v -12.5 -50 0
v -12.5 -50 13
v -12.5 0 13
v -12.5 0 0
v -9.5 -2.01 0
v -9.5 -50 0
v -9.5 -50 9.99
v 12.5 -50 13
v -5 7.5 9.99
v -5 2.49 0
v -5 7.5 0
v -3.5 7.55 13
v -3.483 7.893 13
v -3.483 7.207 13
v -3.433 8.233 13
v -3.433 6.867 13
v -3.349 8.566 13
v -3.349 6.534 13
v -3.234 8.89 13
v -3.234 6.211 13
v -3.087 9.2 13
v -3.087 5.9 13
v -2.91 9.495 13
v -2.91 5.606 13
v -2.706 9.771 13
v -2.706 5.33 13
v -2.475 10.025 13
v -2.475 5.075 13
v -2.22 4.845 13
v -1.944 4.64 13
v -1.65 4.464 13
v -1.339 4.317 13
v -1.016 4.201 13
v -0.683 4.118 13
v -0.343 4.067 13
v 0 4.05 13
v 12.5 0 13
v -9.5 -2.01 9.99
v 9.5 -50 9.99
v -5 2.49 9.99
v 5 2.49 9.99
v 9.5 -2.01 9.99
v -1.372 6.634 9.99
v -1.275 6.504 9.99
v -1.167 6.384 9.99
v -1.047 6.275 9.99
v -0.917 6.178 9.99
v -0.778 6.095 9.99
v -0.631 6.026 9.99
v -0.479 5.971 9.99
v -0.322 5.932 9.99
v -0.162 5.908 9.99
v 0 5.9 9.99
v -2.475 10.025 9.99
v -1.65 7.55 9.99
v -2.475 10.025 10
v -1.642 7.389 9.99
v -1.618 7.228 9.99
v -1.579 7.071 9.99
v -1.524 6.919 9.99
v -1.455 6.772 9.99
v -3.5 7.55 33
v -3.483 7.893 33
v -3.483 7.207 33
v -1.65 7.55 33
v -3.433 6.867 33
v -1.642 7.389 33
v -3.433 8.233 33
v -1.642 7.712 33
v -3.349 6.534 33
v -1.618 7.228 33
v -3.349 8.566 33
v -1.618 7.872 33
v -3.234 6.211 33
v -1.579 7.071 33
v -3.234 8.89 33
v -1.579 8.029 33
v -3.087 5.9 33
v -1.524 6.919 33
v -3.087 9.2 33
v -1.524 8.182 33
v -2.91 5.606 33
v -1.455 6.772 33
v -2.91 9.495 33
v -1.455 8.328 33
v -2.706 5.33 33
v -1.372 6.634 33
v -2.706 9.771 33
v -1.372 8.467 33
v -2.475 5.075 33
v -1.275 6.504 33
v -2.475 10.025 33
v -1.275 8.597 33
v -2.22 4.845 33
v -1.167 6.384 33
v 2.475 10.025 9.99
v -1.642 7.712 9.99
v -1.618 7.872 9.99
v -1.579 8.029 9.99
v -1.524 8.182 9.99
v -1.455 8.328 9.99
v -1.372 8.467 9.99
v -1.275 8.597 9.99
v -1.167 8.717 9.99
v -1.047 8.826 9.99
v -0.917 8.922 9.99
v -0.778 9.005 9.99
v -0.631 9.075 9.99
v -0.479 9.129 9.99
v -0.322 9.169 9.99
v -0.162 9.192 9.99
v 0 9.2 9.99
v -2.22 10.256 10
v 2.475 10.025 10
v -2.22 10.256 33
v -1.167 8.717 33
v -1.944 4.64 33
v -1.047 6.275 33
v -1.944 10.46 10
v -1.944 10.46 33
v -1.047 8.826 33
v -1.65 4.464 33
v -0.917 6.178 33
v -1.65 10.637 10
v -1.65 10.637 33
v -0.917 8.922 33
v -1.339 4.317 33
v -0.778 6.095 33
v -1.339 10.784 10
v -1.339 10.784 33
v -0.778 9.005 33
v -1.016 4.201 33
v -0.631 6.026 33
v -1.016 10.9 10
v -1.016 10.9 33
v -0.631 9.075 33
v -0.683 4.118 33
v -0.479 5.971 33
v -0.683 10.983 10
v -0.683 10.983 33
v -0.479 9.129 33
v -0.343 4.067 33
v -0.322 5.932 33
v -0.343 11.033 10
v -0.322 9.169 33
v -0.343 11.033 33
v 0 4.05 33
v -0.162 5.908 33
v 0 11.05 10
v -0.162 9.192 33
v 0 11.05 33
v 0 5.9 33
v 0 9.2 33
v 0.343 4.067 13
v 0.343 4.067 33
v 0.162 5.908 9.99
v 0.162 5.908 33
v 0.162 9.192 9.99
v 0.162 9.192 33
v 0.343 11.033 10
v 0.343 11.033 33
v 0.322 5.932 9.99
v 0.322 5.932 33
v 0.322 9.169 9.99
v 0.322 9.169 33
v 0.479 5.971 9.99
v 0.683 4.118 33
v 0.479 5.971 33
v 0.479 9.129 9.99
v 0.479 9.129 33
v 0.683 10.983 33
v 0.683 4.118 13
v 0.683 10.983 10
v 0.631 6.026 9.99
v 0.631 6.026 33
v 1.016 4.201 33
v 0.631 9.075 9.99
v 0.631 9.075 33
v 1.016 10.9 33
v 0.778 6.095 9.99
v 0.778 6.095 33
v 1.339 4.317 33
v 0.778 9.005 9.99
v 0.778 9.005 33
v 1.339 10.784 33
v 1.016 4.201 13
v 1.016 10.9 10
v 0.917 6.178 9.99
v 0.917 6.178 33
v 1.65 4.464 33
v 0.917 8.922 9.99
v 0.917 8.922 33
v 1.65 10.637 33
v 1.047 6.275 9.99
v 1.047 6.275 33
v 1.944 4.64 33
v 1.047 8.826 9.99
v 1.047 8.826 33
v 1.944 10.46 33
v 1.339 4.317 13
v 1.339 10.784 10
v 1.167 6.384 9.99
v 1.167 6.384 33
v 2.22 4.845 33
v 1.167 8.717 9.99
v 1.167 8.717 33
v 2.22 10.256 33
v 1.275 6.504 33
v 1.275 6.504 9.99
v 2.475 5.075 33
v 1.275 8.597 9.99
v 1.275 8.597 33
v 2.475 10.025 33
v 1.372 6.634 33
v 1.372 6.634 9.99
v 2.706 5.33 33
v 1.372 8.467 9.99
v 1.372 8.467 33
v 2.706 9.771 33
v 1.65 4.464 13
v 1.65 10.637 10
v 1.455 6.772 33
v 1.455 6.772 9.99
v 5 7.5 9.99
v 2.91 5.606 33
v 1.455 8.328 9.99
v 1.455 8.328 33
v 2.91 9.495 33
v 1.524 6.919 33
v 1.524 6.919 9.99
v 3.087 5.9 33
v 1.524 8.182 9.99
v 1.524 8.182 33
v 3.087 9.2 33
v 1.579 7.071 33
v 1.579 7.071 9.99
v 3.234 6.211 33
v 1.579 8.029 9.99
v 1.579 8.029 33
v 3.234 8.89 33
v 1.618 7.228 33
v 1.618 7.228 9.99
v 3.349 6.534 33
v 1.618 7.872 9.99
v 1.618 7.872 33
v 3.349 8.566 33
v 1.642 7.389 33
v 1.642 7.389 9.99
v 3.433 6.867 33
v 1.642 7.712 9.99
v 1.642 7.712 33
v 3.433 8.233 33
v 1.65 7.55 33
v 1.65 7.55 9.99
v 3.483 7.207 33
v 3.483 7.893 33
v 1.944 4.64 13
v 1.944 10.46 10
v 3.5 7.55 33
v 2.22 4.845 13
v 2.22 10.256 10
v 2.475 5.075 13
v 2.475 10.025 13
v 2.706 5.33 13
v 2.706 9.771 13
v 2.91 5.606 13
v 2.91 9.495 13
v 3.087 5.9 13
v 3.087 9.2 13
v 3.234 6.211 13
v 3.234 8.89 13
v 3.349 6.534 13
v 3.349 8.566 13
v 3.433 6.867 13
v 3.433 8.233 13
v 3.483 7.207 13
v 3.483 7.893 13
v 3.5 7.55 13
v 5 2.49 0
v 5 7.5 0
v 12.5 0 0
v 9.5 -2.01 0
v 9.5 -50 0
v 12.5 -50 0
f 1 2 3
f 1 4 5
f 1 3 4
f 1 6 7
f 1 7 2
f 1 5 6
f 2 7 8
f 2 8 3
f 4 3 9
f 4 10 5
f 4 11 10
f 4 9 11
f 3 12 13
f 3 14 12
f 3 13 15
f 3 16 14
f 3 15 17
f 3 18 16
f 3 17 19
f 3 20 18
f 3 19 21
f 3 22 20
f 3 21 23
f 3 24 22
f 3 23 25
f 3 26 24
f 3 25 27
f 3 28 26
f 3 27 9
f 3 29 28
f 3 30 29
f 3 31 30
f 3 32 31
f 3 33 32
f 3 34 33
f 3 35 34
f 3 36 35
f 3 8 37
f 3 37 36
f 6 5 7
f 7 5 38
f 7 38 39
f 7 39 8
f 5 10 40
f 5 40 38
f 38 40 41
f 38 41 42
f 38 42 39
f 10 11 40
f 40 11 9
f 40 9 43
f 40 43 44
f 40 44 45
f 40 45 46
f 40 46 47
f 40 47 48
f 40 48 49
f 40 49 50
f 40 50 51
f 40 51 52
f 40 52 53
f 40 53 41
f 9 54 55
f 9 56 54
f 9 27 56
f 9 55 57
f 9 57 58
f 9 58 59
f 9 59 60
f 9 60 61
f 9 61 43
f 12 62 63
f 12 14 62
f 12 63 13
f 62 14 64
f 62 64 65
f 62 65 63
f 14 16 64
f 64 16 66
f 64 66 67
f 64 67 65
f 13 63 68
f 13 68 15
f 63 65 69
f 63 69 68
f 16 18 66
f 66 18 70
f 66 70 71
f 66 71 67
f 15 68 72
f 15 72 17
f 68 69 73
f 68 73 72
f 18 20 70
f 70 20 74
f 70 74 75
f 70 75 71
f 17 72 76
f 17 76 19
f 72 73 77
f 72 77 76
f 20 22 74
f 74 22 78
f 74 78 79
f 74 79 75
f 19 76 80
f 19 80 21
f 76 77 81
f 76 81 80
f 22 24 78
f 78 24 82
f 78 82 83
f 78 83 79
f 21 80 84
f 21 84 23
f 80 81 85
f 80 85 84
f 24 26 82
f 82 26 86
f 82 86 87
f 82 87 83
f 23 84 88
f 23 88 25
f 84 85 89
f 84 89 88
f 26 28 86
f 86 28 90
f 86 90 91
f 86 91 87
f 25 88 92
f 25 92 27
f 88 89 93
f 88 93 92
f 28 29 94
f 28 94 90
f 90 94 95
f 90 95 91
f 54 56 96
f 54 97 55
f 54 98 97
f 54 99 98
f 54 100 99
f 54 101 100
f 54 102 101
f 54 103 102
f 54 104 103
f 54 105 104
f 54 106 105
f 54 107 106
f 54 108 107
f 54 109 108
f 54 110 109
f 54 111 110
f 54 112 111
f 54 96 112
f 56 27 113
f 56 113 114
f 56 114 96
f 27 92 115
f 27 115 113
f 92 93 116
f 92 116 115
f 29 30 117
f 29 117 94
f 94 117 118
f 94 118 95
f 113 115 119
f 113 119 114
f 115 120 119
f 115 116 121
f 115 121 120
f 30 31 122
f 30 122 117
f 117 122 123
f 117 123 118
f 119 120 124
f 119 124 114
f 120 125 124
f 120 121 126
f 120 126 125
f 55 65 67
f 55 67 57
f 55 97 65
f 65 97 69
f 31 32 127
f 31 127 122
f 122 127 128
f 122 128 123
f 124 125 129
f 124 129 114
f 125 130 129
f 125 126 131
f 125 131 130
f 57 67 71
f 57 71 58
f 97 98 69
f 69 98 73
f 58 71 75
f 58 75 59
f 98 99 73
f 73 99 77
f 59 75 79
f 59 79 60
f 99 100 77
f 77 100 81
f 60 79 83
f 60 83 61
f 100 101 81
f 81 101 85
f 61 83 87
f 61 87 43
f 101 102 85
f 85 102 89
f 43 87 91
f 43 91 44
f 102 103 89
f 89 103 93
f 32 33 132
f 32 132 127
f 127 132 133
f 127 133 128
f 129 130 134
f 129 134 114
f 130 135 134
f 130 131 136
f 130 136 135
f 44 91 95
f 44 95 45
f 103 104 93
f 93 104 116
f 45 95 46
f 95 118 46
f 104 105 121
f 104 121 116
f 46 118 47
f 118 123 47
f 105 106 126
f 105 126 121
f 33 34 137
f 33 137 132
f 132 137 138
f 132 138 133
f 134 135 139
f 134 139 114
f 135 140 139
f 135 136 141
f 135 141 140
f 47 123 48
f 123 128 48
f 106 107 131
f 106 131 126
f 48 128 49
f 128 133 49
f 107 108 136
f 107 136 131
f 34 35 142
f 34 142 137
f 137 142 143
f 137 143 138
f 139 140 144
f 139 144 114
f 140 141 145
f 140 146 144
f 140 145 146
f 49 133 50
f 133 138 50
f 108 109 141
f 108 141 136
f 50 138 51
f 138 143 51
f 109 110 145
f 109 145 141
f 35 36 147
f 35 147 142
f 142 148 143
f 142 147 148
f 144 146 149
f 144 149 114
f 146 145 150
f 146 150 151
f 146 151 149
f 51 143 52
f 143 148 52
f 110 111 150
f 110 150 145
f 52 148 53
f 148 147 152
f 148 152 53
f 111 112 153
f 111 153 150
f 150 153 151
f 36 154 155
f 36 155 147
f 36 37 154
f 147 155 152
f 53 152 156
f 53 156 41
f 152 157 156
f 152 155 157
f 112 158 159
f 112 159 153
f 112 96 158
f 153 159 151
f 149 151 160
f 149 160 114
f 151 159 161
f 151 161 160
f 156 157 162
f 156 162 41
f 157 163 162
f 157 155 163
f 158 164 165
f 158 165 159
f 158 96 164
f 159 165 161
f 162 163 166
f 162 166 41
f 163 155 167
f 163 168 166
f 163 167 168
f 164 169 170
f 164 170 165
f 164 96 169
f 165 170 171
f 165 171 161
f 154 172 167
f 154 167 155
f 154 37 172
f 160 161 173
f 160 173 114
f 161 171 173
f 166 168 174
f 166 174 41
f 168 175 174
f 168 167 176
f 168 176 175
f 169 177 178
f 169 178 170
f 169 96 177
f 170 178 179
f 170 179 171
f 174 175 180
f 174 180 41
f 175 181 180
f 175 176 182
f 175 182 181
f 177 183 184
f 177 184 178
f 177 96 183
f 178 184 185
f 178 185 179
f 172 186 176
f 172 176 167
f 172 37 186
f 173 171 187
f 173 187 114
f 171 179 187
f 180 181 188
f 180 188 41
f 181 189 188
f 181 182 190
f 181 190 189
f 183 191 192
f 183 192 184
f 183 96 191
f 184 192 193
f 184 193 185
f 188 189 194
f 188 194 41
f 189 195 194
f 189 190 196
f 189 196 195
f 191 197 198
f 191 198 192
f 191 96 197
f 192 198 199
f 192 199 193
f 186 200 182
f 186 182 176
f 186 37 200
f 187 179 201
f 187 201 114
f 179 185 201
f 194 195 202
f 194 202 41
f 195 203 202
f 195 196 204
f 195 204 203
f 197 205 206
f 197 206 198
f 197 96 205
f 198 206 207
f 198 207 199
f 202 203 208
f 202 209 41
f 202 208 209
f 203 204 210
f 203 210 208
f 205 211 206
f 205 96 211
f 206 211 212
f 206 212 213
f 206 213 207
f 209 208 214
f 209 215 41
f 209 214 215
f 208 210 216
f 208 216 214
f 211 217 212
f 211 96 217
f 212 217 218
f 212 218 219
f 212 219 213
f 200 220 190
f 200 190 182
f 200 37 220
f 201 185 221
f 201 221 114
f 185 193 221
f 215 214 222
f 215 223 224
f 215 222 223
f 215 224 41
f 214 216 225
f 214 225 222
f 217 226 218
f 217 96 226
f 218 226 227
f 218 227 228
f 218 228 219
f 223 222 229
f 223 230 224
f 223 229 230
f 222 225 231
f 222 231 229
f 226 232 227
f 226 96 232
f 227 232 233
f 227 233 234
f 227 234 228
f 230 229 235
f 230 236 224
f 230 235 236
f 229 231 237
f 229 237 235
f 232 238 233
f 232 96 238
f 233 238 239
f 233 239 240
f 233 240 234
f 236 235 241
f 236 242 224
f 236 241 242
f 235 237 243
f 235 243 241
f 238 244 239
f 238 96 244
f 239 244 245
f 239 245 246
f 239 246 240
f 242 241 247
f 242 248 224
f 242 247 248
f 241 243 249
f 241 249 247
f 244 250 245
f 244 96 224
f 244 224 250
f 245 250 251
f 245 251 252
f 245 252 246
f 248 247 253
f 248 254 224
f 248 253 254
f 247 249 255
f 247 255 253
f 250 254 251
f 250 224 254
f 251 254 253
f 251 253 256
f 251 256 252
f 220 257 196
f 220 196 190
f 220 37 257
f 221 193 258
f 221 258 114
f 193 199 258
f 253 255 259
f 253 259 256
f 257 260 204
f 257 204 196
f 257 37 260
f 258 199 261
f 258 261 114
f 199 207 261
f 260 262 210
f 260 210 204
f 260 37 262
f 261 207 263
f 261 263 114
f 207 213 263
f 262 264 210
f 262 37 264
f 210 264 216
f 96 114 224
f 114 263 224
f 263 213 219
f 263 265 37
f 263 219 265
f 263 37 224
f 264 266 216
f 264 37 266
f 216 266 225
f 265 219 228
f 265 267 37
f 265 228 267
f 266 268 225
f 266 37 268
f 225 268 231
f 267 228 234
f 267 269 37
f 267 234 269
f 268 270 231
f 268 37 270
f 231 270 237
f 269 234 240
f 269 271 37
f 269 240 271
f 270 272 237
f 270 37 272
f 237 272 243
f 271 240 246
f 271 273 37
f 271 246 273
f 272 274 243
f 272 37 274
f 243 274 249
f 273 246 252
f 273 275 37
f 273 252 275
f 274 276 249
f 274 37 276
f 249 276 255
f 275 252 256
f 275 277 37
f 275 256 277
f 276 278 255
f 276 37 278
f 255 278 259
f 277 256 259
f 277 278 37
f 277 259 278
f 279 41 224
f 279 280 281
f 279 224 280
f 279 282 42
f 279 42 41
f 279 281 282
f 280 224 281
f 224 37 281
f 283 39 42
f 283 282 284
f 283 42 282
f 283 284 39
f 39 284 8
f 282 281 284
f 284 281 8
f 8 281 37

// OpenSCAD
// file: utils.scad
e = 0.01;
2e = 0.02;

module torus(r1, r2, $fn = $fn) {
    rotate_extrude(convexity=2, $fn=$fn)
    difference() {
        translate([r1 - r2, 0, 0]) circle(r=r2, $fn=$fn);
        translate([-r2, 0, 0]) square(r2*2, true);
    }
}

module _hooled_toruses(x, y, r_xy, r_z) {
    translate([r_xy, r_xy, 0]) torus(r_xy, r_z);
    translate([x-r_xy, r_xy, 0]) torus(r_xy, r_z);
    translate([r_xy, y-r_xy, 0]) torus(r_xy, r_z);
    translate([x-r_xy, y-r_xy, 0]) torus(r_xy, r_z);
    
    translate([r_z, r_xy, 0]) rotate([-90, 0, 0]) cylinder(y-r_xy*2, r=r_z);
    translate([x-r_z, r_xy, 0]) rotate([-90, 0, 0]) cylinder(y-r_xy*2, r=r_z);
    translate([r_xy, r_z, 0]) rotate([0, 90, 0]) cylinder(x-r_xy*2, r=r_z);
    translate([r_xy, y-r_z, 0]) rotate([0, 90, 0]) cylinder(x-r_xy*2, r=r_z);
    
    translate([r_z, r_z, -r_z])
    rcube([x-r_z*2, y-r_z*2, r_z*2], r = r_xy-r_z, center = false);
}

module rsquare(size = [30, 10], r = [1, 1, 1, 1], center = true) {
    _r0 = is_num(r) ? r : r[0];
    _r1 = is_num(r) ? r : r[1];
    _r2 = is_num(r) ? r : r[2];
    _r3 = is_num(r) ? r : r[3];
    r0 = _r0 ? _r0 : e;
    r1 = _r1 ? _r1 : e;
    r2 = _r2 ? _r2 : e;
    r3 = _r3 ? _r3 : e;

    x = size[0]; y = size [1];

    tx = center ? -x/2 : 0;
    ty = center ? -y/2 : 0;

    tr_xy(tx, ty)
    hull () {
        tr_xy(r0, r0) circle(r0);
        tr_xy(r1, y - r1) circle(r1);
        tr_xy(x - r2, y - r2) circle(r2);
        tr_xy(x - r3, r3) circle(r3);
    }
}

module rcube(size = [10, 10, 10], center = true, r = 1, rtop = 0, rbottom = 0) {
    x = size[0]; y = size[1]; h = size[2];

    tx = center ? -x/2 : 0;
    ty = center ? -y/2 : 0;

    translate([tx, ty, 0]) {
        if (rtop == 0 && rbottom == 0) {
            translate([r, r, 0]) cylinder(h, r = r);
            translate([x-r, r, 0]) cylinder(h, r = r);
            translate([r, y-r, 0]) cylinder(h, r = r);
            translate([x-r, y-r, 0]) cylinder(h, r = r);
            translate([0, r, 0]) cube([x, y-r*2, h]);
            translate([r, 0, 0]) cube([x-r*2, y, h]);
        }
        if (rtop > 0 && rbottom == 0) {
            translate([0, 0, h-rtop]) _hooled_toruses(x, y, r, rtop);
            rcube([x, y, h-rtop], r = r, center = false);
        }
        if (rtop == 0 && rbottom > 0) {
            translate([0, 0, rbottom]) _hooled_toruses(x, y, r, rbottom);
            translate([0, 0, rbottom])
            rcube([x, y, h-rbottom], r = r, center = false);
        }
        if (rtop > 0 && rbottom > 0) {
            translate([0, 0, h-rtop]) _hooled_toruses(x, y, r, rtop);
            translate([0, 0, rbottom]) _hooled_toruses(x, y, r, rbottom);
            translate([0, 0, rbottom])
            rcube([x, y, h-rbottom-rtop], r = r, center = false);            
        }
    }
}

module rotate_x(angle) { rotate([angle, 0, 0]) children(); }
module rotate_y(angle) { rotate([0, angle, 0]) children(); }
module rotate_z(angle) { rotate([0, 0, angle]) children(); }

module tr_x(ofs) { translate([ofs, 0, 0]) children(); }
module tr_y(ofs) { translate([0, ofs, 0]) children(); }
module tr_z(ofs) { translate([0, 0, ofs]) children(); }
module tr_xy(ofs_x, ofs_y) { translate([ofs_x, ofs_y, 0]) children(); }

module mirror_x() { mirror([1, 0, 0]) children(); }
module mirror_y() { mirror([0, 1, 0]) children(); }
module mirror_z() { mirror([0, 0, 1]) children(); }
module mirror_xy() { mirror_x() mirror_y() children(); }

module dupe_x() { children(); mirror_x() children(); }
module dupe_y() { children(); mirror_y() children(); }
module dupe_xy() { children(); mirror_x() children(); mirror_y() children(); mirror_xy() children(); }
// main file
include <utils.scad>;

$fn = 64;

w = 25;
l = 50;
d_guide = 7;
r_guide = d_guide/2;

wall = 3;
space = 10;

difference () {
    union () {
        // body
        linear_extrude(space + wall)
        polygon([
            [w/2, 0],
            [w/2, -l],
            [-w/2, -l],
            [-w/2, 0],
            //[0, w/2]
            [-r_guide/sqrt(2), w/2 - r_guide/sqrt(2)],
            [r_guide/sqrt(2), w/2 - r_guide/sqrt(2)]
        ]);
        
        // drill guide
        tr_y(w/2 - r_guide*sqrt(2))
        tr_z(space)
        cylinder(h=20+ wall, r=r_guide);
    }

    // Inner main
    tr_z(-e) tr_y(-e - 2)
    linear_extrude(space)
    polygon([
        [w/2 - wall, 0],
        [w/2 - wall, -l],
        [-w/2 + wall, -l],
        [-w/2 + wall, 0],
        [0, w/2 - wall]
    ]);
    
    // Nose gap
    tr_z(-e)
    tr_x(-10/2)
    cube([10,50, space]);
    
    // drill guide hole
    tr_y(w/2 - r_guide*sqrt(2))
    cylinder(h=100, d=3.3);
};
